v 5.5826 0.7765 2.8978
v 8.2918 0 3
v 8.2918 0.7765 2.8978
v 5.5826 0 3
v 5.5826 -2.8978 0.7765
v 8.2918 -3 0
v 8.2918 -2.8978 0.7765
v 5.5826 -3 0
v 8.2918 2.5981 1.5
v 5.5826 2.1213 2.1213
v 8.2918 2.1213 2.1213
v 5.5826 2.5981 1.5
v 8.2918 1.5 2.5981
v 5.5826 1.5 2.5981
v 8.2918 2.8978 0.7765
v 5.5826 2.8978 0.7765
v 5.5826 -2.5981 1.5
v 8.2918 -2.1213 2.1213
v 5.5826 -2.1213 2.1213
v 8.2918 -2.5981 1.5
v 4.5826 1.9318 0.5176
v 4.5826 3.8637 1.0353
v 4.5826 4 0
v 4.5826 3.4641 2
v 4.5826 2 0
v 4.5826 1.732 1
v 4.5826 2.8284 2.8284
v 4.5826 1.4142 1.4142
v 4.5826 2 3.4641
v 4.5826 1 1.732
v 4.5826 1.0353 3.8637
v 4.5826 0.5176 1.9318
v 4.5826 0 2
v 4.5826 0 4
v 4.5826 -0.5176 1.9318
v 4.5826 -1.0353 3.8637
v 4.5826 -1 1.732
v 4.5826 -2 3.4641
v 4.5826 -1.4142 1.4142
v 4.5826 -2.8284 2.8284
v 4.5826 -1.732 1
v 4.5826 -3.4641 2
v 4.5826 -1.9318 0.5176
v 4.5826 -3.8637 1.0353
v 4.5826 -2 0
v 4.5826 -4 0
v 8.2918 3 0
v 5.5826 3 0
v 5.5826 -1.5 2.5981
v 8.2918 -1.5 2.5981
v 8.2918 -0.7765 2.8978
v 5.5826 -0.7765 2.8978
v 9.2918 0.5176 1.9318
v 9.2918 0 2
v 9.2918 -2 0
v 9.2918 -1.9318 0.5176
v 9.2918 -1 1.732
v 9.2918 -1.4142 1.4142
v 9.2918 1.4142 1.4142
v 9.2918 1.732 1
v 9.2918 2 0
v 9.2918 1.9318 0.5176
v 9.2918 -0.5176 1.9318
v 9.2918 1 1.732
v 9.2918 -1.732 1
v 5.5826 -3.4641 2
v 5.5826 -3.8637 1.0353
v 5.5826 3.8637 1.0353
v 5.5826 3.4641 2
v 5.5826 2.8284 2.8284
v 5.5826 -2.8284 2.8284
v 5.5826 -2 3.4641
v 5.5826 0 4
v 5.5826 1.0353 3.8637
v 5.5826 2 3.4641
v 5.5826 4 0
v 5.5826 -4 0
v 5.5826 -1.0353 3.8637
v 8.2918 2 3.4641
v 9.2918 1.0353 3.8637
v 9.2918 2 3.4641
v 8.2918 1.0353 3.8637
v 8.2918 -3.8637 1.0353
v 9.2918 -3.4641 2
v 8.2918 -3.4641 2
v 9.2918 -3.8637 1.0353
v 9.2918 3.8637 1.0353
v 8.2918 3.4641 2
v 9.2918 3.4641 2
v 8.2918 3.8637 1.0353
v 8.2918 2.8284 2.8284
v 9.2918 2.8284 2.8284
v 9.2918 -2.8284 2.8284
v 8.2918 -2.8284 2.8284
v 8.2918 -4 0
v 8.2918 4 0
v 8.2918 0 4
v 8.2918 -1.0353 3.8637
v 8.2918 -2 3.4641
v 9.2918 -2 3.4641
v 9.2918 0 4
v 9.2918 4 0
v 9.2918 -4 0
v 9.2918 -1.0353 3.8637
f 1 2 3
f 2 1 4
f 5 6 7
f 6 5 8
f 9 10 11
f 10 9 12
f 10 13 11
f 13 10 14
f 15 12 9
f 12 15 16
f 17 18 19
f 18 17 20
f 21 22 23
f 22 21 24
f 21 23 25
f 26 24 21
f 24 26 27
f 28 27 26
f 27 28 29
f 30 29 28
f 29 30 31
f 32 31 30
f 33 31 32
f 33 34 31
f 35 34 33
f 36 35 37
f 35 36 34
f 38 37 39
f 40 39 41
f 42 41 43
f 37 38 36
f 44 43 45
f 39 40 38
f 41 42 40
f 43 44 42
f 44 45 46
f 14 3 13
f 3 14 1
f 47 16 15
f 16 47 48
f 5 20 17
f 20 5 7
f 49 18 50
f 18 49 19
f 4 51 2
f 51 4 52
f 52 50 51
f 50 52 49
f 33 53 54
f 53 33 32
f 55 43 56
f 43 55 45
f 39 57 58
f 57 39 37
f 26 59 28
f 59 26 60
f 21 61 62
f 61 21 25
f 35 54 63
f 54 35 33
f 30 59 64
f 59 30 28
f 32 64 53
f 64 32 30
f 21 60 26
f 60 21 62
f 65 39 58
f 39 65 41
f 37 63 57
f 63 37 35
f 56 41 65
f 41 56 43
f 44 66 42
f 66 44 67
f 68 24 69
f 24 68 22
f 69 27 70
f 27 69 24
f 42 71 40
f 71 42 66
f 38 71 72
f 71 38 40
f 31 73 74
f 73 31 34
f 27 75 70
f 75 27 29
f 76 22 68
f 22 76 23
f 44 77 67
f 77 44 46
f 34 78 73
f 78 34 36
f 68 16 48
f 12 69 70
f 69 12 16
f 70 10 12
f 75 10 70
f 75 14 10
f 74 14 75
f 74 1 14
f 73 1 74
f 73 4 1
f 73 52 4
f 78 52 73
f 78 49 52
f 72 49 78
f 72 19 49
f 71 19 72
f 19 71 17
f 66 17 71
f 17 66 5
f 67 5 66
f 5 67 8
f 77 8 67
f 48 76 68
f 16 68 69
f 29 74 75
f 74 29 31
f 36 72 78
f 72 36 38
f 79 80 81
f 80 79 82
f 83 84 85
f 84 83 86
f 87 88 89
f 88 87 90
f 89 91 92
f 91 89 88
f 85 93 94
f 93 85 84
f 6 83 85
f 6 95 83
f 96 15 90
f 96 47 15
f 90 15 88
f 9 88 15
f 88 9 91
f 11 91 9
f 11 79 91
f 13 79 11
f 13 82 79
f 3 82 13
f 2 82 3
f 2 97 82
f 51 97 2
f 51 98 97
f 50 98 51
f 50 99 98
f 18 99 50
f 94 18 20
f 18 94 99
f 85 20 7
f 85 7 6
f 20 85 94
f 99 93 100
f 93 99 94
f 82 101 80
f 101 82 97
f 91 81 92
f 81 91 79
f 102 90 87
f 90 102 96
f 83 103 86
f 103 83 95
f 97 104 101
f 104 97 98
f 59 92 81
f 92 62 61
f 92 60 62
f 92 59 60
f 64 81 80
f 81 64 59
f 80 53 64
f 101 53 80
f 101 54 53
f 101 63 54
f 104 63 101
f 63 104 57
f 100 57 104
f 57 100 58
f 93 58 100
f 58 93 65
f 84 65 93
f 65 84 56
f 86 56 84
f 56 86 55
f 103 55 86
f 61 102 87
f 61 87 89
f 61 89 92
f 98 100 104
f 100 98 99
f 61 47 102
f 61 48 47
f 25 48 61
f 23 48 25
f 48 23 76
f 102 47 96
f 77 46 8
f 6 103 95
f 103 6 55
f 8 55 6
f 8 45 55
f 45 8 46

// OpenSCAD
// file: ../build_environments.scad
// build_environments.scad: modules to build level sections
//

module pool(diameter=10.0, wall_height=2.0, step_width=3.0, connections=[])
{
    difference() {
        union() {
        difference() {
            cylinder(h=0.5,r1=diameter+step_width,r2=diameter+step_width,$fn=48);
            translate([0,0,-0.1])
                cylinder(h=0.7,r1=diameter,r2=diameter,$fn=48);
        }
        difference() {
            cylinder(h=wall_height,r1=diameter+step_width+1.0,r2=diameter+step_width+1.0,$fn=48);
            translate([0,0,-0.1])
                cylinder(h=wall_height+0.2,r1=diameter+step_width,r2=diameter+step_width,$fn=48);
        }
        }
    
        for (c = connections)
        {
            rotate([0,90,0]) {
                angle = atan2(c[1],c[0]);
                rotate([-angle,0,0]) {
                    cylinder(h=diameter+5.0,r1=c[2],r2=c[2],$fn=48);
                }
            }
        }
    }
}

module straight(length=10.0, width=2.0, dy1=0.0, dy2=0.0, dz=0.0)
{
    dims = [0, 0, 0, 0, 0, (dz/length)];
    matrix = [
        [ 1, dims[0], dims[1], 0 ],
        [ dims[2], 1, dims[4], 0 ],
        [ dims[5], dims[3], 1, 0 ],
        [ 0, 0, 0, 1 ]
    ];
    multmatrix(matrix)
    difference() {
        translate([dy1,0,0])
        union() {
            rotate([0,90,0]) {
                difference() {
                    cylinder(h=(length-dy1-dy2),r1=width+1.0,r2=width+1.0,$fn=24);
                    translate([0,0,-0.1])
                        cylinder(h=(length-dy1-dy2+0.2),r1=width,r2=width,$fn=24);
                }
                difference() {
                    cylinder(h=1.0,r1=width+2.0,r2=width+2.0,$fn=24);
                    translate([0,0,-0.1])
                        cylinder(h=1.2,r1=width,r2=width,$fn=24);
                }
                translate([0,0,(length-dy1-dy2)-1.0]) {
                    difference() {
                        cylinder(h=1.0,r1=width+2.0,r2=width+2.0,$fn=24);
                        translate([0,0,-0.1])
                            cylinder(h=1.2,r1=width,r2=width,$fn=24);
                    }
                }
            }
        }
        translate([0,0,-(2*width+4.0)/2])
            cube([3*length,3*length,2*width+4.0],center=true);
    }
}

module curve(p0=[0,0], center=[0,0], dir=1, angle=0.0, width=2.0)
{
    radius = sqrt((p0[0]-center[0])*(p0[0]-center[0]) + (p0[1]-center[1])*(p0[1]-center[1]));
    if (dir == 0) {
        difference() {
            rotate([0,0,-90])
            difference() {
                rotate_extrude(angle = angle, convexity = 10, $fn=32)
                    translate([radius, 0, 0])
                        circle(r = width+1.0,$fn=24);
                rotate([0,0,-1.0])
                    rotate_extrude(angle = angle+2.0, convexity = 10, $fn=32)
                        translate([radius, 0, 0])
                            circle(r = width,$fn=24);
            }
            translate([0,0,-(2*width+4.0)/2])
                cube([5*radius,5*radius,2*width+4.0],center=true);
        }
    }
    else {
        difference() {
            rotate([0,0,90])
            difference() {
                rotate_extrude(angle = -angle, convexity = 10, $fn=32)
                    translate([radius, 0, 0])
                        circle(r = width+1.0,$fn=24);
                rotate([0,0,1.0])
                    rotate_extrude(angle = -angle-2.0, convexity = 10, $fn=32)
                        translate([radius, 0, 0])
                            circle(r = width,$fn=24);
            }
            translate([0,0,-(2*width+4.0)/2])
                cube([5*radius,5*radius,2*width+4.0],center=true);
        }
    }

}

// test pool
//pool(diameter=12.0000, wall_height=3.0000, step_width=3.0000, connections=[[0.0000,-26.0000,2.0000], [23.6074,0.0000,2.0000]]);

// test straight, slope
//straight(length=26.0000, width=2.0000, dy1=11.8322, dy2=6.7082, dz=0.0000);
//straight(length=29.1549, width=12.0000, dy1=0.0000, dy2=0.0000, dz=-15.0000);

// test curve
//curve(p0=[23.6074, 0.0000], center=[23.6074, 5.0000], dir=0, angle=60.1011, width=2.0000);
//curve(p0=[33.6426, 12.4219], center=[37.9771, 9.9295], dir=1, angle=120.4627, width=2.0000);
// main file
use <../build_environments.scad>;
straight(length=16.0000, width=2.0000, dy1=4.5826, dy2=6.7082, dz=0.0000);
